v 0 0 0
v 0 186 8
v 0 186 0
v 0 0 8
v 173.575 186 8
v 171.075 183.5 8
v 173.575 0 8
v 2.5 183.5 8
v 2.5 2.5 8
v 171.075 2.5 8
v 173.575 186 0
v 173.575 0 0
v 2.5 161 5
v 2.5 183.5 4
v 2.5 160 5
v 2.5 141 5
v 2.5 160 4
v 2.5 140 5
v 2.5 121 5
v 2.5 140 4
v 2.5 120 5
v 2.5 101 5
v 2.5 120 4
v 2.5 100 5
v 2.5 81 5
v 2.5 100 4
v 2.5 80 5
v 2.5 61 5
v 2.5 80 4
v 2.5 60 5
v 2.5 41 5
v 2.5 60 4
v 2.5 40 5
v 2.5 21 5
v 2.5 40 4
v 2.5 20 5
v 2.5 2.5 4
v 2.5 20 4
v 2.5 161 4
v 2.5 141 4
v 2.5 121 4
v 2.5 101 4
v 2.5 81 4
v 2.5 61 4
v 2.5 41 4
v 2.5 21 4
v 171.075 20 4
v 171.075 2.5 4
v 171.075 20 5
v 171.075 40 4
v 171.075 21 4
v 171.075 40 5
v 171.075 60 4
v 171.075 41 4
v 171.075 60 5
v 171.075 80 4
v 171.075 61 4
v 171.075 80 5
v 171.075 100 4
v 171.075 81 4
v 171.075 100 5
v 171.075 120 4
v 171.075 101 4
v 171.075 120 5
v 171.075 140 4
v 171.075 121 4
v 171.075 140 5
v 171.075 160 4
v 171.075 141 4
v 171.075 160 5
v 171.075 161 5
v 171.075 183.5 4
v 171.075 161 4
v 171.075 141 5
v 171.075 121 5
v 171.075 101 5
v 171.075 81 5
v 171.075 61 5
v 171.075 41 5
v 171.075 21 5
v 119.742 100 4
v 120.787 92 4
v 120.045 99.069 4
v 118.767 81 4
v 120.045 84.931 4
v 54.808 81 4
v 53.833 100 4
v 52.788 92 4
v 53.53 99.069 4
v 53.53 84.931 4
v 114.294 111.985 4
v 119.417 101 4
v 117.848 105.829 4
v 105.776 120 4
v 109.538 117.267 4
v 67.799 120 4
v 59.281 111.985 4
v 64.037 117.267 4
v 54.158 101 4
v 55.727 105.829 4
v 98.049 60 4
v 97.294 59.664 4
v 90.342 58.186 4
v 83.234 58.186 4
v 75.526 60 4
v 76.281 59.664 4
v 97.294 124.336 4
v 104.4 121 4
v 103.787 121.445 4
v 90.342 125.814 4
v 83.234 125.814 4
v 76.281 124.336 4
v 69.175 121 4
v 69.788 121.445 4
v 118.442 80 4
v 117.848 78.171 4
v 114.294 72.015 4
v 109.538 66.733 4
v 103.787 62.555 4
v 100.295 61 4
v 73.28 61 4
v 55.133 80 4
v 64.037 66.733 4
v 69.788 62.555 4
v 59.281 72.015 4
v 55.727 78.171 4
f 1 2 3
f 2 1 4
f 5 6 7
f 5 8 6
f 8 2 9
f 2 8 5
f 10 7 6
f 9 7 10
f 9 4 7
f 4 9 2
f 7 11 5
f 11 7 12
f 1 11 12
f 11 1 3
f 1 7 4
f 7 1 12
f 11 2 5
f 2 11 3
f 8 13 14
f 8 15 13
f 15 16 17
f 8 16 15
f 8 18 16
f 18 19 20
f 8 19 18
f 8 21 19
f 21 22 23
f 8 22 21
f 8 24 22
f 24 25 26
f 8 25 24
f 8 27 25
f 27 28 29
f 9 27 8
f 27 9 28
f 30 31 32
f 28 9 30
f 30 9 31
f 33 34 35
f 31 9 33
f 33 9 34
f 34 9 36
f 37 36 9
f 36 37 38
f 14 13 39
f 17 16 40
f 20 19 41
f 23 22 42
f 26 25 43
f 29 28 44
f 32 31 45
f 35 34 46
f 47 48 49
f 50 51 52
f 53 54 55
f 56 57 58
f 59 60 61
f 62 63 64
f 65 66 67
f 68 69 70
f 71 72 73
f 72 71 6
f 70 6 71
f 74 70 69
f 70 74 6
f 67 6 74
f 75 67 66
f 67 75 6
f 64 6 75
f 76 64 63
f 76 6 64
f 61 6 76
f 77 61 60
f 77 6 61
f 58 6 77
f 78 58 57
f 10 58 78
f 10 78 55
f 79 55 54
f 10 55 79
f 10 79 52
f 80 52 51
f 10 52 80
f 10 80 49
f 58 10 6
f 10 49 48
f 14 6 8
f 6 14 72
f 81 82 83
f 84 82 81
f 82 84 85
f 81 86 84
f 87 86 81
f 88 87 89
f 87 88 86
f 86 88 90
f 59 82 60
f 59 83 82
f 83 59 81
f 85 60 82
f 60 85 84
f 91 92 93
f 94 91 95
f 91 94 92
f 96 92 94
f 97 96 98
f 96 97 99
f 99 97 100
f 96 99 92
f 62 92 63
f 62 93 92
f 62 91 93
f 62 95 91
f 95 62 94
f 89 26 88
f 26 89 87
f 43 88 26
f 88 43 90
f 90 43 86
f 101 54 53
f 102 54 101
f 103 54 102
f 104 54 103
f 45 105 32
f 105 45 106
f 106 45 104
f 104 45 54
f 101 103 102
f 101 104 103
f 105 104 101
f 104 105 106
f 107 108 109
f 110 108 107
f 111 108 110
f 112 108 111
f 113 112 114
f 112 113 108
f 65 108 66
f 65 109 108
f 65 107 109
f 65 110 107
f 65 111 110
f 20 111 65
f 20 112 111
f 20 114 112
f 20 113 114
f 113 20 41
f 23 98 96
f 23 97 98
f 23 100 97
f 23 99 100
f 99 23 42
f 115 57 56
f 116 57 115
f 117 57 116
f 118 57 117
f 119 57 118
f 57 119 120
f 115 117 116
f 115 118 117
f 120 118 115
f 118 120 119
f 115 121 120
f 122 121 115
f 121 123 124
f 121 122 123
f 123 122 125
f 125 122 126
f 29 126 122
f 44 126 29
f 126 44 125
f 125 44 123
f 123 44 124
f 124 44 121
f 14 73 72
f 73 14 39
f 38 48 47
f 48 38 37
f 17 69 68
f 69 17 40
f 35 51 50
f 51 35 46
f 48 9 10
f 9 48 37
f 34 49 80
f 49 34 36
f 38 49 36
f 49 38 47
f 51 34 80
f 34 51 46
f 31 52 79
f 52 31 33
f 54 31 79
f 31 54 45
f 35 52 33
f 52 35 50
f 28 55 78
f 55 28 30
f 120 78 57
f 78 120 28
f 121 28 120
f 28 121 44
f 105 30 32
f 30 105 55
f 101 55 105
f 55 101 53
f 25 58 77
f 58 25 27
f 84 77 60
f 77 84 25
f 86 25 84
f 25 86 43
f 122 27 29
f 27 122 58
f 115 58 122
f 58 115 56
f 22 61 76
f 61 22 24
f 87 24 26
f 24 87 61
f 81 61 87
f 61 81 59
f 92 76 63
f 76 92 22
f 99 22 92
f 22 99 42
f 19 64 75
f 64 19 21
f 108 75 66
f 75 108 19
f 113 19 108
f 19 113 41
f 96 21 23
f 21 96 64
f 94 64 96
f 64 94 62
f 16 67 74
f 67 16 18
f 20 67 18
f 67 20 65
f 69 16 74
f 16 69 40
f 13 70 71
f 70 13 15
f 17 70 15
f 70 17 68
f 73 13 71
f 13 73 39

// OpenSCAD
// use the same width and depth as with the bee box

width = 146.575; 
depth = 179;
height = 8;

// set to 1 if you want a hole to fee with a jar, etc.
jar_hole = 0;


difference() {
    union() {
        lid_with_ribs();
        translate([(width+18+5+4)/2,(depth+5)/2,0]) cylinder(d=68,h=4);
    }
    if (jar_hole) {
        translate([(width+18+5+4)/2,(depth+5)/2,0]) cylinder(d=66,h=5);
    }
}

module lid_with_ribs() { 
   difference() {
        cube([width+18+5+4,depth+7,height]);
        translate([2.5,2.5,4]) cube([width+18+4,depth+2,height]);
    }
    ribs();
}

module ribs(l=179) {
    for(i = [20 : 20 : l]) {    
        translate([0,i,4]) cube([146.575+18+5+4,1,1]);
    }
}
